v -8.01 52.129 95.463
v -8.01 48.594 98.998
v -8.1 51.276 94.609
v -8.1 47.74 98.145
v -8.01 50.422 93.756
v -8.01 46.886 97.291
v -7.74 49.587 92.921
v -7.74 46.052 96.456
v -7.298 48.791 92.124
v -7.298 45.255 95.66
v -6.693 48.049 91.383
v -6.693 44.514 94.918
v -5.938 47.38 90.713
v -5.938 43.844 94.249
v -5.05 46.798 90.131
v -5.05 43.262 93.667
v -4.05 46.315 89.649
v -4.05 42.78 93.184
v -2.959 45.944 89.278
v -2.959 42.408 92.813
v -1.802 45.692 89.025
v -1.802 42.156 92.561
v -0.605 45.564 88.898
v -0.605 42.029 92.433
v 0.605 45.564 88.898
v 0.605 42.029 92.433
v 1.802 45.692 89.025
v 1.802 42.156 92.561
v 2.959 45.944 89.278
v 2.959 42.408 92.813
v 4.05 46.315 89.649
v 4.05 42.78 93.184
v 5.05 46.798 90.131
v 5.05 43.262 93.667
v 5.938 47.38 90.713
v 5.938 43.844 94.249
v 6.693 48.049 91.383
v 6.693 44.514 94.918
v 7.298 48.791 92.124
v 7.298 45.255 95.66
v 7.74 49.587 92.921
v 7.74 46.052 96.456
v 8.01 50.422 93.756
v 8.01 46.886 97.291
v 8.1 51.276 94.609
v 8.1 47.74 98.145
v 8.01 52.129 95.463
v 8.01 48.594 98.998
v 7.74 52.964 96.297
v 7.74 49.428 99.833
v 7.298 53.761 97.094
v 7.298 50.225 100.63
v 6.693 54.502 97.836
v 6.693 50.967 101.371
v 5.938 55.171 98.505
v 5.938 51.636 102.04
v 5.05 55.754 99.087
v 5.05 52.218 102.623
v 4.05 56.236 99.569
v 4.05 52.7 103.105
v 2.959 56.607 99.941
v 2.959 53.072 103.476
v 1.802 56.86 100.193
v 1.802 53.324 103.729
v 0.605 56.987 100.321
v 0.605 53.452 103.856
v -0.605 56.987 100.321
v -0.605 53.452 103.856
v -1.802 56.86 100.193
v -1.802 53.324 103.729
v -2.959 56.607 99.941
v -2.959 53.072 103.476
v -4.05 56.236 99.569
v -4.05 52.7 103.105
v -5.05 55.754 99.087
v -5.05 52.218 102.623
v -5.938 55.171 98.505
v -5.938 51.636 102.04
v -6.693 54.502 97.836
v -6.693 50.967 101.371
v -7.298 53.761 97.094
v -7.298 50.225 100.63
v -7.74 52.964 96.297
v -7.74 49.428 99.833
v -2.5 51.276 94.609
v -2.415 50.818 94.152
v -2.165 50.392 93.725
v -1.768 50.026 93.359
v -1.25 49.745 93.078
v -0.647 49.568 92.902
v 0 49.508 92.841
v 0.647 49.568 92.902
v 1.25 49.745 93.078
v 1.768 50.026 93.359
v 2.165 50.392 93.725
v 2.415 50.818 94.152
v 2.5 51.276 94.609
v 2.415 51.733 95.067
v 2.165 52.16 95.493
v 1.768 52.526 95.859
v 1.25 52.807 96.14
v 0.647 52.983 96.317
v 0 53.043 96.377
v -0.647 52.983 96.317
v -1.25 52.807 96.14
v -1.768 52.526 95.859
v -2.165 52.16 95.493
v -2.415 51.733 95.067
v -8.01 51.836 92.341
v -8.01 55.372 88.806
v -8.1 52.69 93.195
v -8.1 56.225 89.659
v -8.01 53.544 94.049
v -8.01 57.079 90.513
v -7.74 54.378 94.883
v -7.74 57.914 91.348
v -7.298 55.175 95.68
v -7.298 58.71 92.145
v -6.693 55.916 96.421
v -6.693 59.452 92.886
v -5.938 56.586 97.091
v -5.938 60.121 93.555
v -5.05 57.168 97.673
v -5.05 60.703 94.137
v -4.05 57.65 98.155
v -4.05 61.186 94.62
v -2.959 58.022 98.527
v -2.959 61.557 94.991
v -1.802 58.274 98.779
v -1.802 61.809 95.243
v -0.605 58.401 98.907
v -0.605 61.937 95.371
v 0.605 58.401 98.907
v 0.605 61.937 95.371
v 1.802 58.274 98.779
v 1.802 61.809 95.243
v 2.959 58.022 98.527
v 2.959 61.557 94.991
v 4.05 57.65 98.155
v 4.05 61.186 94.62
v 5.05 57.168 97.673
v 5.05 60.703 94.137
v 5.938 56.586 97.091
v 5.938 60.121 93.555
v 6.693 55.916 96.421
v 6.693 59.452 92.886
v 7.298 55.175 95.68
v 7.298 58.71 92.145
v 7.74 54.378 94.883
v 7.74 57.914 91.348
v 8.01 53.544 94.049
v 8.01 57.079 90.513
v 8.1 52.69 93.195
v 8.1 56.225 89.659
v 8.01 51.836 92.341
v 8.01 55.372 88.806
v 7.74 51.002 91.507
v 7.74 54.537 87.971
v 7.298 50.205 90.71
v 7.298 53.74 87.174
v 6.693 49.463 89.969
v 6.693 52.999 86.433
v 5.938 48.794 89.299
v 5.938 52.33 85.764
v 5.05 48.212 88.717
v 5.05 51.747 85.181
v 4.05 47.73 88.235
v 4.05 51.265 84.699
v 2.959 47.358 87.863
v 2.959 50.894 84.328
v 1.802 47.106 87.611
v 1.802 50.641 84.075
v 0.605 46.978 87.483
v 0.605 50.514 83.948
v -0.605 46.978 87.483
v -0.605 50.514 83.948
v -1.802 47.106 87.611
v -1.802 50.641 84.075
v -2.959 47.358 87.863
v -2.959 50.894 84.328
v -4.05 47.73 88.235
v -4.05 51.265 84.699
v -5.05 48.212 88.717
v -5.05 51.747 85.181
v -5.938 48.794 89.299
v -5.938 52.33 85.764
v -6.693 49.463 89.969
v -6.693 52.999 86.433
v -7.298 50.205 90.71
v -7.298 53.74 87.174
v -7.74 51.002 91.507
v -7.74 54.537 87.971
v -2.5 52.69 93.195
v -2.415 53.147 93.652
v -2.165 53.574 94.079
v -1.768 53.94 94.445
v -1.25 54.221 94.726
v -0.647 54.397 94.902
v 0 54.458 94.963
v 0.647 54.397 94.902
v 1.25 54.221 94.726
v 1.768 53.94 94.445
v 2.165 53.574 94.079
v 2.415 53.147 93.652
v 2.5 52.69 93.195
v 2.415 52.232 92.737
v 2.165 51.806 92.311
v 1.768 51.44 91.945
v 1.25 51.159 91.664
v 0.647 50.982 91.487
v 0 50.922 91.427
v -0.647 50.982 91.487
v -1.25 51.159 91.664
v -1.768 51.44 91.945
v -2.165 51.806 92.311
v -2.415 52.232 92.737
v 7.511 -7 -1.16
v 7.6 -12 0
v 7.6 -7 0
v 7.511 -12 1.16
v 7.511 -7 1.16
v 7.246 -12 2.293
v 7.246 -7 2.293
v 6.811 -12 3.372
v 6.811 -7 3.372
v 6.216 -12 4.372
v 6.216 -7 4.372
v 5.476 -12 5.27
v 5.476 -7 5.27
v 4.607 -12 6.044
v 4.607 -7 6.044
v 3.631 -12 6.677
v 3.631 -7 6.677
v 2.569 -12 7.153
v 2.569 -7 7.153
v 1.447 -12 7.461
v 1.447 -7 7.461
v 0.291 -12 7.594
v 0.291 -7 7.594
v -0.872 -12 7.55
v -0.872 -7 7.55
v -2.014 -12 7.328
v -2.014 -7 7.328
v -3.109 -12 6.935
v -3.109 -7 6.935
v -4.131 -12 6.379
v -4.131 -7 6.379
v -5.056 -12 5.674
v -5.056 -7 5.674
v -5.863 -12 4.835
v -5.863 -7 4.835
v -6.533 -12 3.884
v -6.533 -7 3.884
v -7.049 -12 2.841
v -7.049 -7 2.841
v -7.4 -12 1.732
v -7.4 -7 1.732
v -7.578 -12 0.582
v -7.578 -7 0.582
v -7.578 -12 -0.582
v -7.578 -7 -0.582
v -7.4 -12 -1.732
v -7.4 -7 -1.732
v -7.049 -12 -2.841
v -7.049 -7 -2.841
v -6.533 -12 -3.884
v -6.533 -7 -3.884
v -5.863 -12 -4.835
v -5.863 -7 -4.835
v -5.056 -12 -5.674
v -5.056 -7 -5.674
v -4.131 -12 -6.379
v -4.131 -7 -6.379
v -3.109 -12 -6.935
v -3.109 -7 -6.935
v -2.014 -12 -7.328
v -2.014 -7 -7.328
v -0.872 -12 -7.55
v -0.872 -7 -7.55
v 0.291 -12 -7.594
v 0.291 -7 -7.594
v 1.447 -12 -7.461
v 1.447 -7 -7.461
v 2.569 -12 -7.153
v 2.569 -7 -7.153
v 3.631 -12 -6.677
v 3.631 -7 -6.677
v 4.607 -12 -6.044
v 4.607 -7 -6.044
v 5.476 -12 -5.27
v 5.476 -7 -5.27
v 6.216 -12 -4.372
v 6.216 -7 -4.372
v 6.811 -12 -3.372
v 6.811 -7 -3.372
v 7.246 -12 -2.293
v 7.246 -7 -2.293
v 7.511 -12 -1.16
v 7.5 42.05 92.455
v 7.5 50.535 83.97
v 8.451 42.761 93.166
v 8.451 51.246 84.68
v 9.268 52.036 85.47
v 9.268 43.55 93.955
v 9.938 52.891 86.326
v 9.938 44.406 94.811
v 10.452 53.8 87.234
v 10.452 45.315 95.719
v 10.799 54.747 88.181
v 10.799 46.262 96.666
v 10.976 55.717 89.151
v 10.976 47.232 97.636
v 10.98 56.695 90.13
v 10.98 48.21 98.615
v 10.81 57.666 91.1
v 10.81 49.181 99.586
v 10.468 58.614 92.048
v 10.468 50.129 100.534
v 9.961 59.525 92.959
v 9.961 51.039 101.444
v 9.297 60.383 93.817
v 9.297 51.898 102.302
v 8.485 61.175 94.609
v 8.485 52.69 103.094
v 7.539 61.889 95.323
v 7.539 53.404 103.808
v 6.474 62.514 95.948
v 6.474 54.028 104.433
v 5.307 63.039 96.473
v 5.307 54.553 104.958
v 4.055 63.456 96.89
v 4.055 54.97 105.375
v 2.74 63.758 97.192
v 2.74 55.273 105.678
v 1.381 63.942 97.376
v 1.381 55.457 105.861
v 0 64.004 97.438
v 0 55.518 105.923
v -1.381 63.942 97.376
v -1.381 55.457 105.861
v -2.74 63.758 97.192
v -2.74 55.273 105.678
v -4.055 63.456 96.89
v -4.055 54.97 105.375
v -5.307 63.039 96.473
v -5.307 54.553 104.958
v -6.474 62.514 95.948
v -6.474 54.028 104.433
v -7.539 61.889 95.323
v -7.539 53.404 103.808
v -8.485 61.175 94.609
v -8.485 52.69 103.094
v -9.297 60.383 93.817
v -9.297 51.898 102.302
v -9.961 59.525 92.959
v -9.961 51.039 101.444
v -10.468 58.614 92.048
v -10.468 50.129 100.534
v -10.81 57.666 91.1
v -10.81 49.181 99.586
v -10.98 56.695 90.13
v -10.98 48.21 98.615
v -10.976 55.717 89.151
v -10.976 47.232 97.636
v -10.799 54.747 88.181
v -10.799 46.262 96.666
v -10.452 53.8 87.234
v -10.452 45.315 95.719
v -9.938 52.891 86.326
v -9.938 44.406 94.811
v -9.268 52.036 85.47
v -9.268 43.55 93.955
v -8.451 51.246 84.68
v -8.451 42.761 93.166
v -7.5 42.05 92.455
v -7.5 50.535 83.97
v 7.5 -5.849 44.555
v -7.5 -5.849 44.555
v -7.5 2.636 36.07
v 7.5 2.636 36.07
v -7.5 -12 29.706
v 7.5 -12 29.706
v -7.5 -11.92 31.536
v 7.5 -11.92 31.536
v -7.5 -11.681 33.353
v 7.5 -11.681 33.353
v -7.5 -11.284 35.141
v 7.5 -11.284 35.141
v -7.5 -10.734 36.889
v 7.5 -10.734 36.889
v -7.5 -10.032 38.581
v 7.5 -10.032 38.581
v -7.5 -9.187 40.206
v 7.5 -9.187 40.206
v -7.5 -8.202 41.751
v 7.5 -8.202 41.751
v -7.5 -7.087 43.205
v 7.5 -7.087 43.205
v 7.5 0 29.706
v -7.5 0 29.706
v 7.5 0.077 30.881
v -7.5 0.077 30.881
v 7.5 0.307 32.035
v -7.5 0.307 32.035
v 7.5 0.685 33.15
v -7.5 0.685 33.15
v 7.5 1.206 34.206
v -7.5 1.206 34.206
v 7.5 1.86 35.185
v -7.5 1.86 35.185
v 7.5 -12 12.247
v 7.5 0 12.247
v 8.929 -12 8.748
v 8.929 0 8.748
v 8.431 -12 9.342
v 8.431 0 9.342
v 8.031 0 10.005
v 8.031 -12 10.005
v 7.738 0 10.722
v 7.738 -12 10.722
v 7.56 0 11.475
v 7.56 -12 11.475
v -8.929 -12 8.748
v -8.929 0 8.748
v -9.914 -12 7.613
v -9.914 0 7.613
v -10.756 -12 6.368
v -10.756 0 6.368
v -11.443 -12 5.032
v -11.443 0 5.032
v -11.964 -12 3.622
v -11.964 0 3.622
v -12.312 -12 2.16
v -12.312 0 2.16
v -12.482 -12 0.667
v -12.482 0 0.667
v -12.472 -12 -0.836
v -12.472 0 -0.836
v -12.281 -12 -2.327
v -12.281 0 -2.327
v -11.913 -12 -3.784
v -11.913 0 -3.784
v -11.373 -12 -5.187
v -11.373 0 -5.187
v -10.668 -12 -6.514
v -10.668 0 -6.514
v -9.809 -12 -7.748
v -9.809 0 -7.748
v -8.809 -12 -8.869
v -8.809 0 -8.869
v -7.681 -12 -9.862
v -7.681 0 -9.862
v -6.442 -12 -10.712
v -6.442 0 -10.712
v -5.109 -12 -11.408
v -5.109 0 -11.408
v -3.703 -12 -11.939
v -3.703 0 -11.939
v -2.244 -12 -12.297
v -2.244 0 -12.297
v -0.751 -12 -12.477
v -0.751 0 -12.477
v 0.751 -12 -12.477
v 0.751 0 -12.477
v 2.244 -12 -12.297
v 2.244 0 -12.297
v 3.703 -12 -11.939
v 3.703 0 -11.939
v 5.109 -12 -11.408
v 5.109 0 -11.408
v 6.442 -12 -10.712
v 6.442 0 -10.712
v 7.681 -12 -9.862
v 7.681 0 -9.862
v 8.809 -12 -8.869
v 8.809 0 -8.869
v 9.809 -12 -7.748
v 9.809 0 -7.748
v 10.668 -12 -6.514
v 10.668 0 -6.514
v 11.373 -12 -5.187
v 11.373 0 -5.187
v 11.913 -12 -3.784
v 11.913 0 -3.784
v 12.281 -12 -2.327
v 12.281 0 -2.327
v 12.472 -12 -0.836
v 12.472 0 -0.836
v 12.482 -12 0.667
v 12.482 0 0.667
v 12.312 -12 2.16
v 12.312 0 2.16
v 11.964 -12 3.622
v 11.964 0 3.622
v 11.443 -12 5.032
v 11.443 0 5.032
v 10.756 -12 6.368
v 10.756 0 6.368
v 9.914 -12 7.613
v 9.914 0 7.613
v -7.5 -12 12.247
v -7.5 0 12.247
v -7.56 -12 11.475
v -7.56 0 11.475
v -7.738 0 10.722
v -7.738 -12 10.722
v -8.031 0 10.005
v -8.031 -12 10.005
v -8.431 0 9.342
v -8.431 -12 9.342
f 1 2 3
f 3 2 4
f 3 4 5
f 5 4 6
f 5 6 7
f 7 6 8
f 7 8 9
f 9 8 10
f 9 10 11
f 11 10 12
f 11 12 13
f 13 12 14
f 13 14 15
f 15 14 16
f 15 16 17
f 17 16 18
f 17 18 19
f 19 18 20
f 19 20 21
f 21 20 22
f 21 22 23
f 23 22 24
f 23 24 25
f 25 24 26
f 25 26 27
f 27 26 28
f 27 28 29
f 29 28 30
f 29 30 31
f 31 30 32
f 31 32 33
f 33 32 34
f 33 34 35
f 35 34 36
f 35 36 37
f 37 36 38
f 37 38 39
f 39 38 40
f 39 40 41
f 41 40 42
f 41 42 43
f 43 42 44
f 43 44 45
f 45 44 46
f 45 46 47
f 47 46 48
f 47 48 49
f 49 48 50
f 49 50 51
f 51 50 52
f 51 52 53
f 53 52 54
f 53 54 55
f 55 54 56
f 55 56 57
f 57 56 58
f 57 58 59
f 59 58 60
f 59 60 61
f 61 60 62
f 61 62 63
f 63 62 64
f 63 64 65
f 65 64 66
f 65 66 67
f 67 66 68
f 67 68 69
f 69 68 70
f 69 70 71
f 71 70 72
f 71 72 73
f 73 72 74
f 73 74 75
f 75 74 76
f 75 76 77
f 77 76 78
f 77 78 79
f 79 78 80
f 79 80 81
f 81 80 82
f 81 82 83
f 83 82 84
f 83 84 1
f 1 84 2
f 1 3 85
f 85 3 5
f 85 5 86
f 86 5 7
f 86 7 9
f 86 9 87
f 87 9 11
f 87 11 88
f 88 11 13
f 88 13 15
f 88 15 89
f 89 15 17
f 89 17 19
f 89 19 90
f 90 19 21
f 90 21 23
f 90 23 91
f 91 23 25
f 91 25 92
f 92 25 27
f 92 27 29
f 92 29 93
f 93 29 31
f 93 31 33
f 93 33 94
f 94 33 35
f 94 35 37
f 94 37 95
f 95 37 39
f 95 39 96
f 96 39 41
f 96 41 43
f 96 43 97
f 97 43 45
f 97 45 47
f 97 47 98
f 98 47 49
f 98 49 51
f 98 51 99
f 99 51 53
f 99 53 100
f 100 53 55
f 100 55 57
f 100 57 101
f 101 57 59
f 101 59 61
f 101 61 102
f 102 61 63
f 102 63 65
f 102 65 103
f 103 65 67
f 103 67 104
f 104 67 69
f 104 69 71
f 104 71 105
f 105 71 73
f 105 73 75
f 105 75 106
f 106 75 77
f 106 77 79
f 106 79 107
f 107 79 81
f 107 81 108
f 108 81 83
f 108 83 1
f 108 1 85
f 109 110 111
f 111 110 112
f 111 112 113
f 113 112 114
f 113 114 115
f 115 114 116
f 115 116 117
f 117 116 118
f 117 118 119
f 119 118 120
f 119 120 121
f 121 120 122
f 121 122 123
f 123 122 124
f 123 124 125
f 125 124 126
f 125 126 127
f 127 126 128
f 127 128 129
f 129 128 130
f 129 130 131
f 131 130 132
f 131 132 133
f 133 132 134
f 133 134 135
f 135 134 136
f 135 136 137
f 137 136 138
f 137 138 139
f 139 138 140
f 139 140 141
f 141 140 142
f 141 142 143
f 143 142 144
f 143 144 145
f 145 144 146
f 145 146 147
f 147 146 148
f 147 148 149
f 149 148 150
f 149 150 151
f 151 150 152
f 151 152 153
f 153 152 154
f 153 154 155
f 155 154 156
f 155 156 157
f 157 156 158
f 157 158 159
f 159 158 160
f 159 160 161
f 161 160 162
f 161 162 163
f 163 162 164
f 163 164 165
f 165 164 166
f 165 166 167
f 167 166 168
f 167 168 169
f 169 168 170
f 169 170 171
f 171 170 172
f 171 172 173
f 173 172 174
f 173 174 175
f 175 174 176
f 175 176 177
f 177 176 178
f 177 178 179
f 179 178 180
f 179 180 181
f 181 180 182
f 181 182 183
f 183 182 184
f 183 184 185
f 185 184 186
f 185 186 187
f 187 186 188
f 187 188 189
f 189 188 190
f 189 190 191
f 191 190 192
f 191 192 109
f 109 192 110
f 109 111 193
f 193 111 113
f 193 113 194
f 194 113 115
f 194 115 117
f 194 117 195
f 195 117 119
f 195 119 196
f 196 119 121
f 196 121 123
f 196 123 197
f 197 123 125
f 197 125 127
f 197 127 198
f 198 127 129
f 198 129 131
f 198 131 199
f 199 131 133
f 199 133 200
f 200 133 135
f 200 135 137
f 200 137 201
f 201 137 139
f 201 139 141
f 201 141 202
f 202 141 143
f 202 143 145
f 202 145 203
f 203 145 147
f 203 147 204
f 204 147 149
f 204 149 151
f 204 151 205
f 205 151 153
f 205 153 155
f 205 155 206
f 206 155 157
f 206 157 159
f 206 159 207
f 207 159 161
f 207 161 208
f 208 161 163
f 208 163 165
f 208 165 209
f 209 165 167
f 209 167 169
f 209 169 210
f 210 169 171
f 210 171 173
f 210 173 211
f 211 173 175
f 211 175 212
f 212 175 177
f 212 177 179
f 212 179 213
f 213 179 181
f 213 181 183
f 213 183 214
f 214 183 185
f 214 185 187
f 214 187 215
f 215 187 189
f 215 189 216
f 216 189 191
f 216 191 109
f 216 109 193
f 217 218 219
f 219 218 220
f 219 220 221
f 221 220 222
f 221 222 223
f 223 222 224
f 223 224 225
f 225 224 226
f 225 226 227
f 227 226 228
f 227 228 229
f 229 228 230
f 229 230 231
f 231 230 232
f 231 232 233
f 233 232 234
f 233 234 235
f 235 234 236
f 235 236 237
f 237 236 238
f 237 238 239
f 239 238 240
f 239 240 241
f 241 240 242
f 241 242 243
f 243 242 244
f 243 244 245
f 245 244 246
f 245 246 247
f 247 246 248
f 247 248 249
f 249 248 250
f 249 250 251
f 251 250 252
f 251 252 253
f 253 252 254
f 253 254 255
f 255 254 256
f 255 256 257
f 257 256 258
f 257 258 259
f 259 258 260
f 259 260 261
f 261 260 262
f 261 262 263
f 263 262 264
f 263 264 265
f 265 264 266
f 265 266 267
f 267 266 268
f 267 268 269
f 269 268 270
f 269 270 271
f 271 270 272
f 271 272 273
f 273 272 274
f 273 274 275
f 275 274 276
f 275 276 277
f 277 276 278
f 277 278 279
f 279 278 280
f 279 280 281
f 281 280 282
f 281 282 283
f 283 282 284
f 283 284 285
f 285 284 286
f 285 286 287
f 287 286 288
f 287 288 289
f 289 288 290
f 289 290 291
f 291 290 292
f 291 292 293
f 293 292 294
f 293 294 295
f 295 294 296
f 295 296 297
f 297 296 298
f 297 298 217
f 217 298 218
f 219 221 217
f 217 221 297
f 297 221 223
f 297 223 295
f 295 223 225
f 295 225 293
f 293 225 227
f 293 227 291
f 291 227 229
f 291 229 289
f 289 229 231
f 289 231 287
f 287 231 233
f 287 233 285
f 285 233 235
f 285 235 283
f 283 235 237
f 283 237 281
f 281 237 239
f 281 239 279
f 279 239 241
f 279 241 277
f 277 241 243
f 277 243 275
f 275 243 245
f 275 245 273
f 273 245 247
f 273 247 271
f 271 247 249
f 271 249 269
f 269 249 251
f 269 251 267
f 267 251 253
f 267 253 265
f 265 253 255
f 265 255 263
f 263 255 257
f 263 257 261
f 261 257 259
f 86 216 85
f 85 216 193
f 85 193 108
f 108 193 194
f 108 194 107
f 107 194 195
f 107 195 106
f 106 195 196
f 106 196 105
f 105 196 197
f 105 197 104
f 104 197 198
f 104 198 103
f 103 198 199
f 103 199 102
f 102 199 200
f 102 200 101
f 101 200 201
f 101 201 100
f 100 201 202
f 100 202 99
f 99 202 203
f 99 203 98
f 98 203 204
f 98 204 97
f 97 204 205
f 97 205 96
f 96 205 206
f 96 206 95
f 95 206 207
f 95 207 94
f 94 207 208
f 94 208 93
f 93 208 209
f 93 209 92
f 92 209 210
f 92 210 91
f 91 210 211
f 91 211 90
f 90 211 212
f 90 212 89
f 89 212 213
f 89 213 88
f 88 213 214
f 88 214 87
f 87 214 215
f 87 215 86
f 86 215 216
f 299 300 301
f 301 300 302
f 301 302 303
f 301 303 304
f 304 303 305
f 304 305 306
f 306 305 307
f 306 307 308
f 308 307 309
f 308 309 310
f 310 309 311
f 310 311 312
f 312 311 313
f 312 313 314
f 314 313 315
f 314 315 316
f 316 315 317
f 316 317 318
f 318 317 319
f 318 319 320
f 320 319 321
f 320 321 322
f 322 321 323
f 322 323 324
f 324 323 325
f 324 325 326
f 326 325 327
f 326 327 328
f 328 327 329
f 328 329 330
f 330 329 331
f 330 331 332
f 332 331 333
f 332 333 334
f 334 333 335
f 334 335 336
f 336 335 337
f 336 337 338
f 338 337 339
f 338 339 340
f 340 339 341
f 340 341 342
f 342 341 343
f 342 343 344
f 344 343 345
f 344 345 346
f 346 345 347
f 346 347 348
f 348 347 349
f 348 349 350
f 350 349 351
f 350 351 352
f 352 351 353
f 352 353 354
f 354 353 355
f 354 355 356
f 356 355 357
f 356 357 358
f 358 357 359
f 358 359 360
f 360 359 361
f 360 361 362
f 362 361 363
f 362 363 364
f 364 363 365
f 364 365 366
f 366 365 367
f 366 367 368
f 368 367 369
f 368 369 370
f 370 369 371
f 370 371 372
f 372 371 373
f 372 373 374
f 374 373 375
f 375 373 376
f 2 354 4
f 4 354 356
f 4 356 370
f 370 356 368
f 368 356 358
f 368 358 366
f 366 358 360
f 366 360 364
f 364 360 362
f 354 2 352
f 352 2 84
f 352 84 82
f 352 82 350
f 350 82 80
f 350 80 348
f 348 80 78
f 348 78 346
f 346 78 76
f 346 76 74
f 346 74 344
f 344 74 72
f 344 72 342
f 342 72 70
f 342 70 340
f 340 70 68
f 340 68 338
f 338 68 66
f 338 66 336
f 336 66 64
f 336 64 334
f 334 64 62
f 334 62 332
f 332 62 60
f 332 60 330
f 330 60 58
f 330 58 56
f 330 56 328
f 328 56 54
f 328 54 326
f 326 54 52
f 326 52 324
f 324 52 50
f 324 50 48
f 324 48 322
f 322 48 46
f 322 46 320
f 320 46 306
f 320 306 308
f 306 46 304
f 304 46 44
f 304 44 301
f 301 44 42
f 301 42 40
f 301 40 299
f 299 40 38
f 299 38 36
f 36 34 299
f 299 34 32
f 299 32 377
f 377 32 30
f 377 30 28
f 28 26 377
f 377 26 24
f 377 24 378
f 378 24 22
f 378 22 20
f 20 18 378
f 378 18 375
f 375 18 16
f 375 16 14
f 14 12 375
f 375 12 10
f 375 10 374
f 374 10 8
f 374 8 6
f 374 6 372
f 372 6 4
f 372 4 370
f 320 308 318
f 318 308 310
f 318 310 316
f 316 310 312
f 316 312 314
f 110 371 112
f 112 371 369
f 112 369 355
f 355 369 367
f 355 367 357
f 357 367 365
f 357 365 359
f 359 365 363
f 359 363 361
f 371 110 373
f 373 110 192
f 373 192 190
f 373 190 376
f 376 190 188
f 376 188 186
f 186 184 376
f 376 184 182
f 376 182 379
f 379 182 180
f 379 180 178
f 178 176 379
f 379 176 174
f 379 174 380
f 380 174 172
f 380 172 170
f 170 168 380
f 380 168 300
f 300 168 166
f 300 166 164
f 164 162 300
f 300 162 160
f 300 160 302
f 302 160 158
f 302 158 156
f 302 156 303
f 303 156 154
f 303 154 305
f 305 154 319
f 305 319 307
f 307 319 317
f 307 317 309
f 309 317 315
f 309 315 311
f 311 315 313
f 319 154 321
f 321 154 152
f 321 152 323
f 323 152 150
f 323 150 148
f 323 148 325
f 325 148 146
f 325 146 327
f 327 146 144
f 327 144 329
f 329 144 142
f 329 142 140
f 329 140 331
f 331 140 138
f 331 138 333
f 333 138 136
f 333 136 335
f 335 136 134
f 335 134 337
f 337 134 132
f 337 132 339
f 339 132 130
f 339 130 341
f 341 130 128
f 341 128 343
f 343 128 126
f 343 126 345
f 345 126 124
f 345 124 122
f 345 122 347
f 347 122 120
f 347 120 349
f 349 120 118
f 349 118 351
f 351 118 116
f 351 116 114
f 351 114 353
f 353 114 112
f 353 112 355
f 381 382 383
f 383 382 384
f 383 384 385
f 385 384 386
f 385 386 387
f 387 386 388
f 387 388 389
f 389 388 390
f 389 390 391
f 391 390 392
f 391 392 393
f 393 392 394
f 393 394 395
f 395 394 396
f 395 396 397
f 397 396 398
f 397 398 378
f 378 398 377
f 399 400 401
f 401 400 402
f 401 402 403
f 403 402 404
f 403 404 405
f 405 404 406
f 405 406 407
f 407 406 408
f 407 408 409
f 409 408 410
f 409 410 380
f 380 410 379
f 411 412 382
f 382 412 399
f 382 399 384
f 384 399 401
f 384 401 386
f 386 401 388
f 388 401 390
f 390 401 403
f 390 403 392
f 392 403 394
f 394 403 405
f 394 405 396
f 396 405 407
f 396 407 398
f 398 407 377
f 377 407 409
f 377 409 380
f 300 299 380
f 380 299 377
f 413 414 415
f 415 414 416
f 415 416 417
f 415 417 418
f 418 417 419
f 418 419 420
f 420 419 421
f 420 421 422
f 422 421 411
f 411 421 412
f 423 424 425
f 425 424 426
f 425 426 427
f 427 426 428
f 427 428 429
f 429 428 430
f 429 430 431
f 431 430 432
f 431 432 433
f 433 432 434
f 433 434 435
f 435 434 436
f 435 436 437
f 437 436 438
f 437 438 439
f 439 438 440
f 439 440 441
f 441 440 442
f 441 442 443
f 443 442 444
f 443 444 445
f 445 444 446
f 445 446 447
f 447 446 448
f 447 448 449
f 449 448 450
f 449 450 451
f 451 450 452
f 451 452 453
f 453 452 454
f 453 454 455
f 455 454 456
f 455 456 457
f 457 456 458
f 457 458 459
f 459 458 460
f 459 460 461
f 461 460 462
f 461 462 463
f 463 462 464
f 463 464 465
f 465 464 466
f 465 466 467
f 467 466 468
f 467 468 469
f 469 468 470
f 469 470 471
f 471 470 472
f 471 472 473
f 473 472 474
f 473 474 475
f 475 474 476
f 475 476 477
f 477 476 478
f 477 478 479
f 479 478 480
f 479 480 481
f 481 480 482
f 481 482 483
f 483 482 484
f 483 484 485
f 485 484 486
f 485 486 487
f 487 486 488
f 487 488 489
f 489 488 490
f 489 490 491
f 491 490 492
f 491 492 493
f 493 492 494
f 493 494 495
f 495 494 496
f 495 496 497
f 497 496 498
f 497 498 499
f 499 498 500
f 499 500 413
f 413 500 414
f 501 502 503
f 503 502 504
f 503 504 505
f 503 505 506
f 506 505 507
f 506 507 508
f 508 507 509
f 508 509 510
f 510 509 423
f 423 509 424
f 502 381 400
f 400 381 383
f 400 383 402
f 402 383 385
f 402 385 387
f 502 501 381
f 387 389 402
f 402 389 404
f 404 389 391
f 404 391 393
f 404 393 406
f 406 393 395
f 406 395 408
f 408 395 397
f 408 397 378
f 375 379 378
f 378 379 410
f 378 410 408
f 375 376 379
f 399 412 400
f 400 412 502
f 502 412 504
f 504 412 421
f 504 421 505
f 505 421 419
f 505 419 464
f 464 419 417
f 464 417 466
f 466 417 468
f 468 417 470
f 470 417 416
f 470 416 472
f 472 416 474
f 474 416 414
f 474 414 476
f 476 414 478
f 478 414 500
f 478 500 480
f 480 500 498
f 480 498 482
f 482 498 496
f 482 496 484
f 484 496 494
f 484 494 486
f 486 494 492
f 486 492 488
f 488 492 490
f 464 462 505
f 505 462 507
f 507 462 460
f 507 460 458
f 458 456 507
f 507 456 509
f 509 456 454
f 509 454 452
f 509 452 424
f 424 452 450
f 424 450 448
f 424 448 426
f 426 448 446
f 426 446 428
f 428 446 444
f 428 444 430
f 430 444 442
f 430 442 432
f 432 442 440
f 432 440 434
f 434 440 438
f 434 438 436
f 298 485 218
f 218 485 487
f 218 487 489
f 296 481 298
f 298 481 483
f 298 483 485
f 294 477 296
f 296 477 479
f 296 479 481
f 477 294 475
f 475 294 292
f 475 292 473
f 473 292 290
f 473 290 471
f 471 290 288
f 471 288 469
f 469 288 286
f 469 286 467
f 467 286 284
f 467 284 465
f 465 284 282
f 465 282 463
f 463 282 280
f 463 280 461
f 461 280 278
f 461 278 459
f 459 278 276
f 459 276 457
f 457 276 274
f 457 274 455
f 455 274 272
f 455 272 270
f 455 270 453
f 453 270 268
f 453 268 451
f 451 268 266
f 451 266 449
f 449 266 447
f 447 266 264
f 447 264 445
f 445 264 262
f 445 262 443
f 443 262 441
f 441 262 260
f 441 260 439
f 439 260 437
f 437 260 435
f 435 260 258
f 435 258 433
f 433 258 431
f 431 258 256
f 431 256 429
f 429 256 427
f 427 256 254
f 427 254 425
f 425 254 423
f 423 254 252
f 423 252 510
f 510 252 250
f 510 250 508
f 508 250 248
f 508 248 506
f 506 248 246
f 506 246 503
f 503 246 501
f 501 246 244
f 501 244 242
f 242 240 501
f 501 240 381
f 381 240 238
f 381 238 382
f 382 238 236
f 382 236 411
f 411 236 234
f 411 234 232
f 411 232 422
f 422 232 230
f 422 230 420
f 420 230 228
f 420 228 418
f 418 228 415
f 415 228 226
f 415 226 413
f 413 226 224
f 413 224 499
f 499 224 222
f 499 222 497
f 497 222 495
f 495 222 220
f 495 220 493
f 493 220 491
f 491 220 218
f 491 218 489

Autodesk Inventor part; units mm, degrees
ref_plane "YZ Plane" through (0, 0, 0) normal (1, 0, 0) x (0, 1, 0)
ref_plane "XZ Plane" through (0, 0, 0) normal (0, 1, 0) x (-1, 0, 0)
sketch "Sketch1" plane through (0, 0, 0) normal (0, 1, 0) x (-1, 0, 0)
  arc A0 (-8.928571, 8.748178) -> (8.928571, 8.748178) centre (0, 0) ccw
  line L0 (-7.5, 12.247449) -> (-7.5, 20)
  line L1 (7.5, 20) -> (7.5, 12.247449)
  line L2 (7.5, 20) -> (-7.5, 20)
  arc A1 (7.5, 12.247449) -> (8.928571, 8.748178) centre (12.5, 12.247449) ccw
  arc A2 (-8.928571, 8.748178) -> (-7.5, 12.247449) centre (-12.5, 12.247449) ccw
  point P0 (7.5, 10)
  point P1 (-7.5, 10)
  point P2 (0, 10)
  point P3 (0, 20)
  dimension "d0" = 25
  dimension "d106" = 15
  dimension "d107" = 10
  dimension "d108" = 10
  dimension "d109" = 5
extrude "Extrusion1" add sketch "Sketch1" against normal blind 12
sketch "Sketch22" plane through (-7.5, 0, 20) normal (0, 0, 1) x (1, 0, 0)
  line L0 (0, 0) -> (0, -12) projected
  line L1 (15, -12) -> (0, -12) projected
  line L2 (0, 0) -> (15, 0)
  line L3 (15, 0) -> (15, -12)
  line L4 (15, -12) -> (0, -12)
  line L5 (0, -12) -> (0, 0)
  point P0 (7.5, 0)
sketch "Sketch23" plane through (0, 0, 0) normal (1, 0, 0) x (0, 1, 0)
  line L0 (0, 20) -> (-12, 20)
  line L1 (-6, 20) -> (-6, 29.70611)
  line L2 (-1.606602, 40.312712) -> (43.497475, 85.416788)
  arc A0 (-1.606602, 40.312712) -> (-6, 29.70611) centre (9, 29.70611) ccw
  point P0 (0, 0)
  point P1 (-6, 35.919313)
  dimension "d110" = 15.91931
  dimension "d111" = 70
  dimension "d112" = 135
  dimension "d113" = 15
sweep "Sweep2" add profiles "Sketch22" path "Sketch23" path curves L1 A0 L2
ref_plane "Work Plane11" through (7.5, -1.606602, 40.312712) normal (0, 0.7071068, -0.7071068) x (-1, 0, 0)
sketch "Sketch24" plane through (7.5, -1.606602, 40.312712) normal (0, 0.7071068, -0.7071068) x (-1, 0, 0)
  line L0 (0, 63.786797) -> (15, 63.786797)
  line L1 (0, 63.786797) -> (15, 63.786797)
  line L2 (0, 63.786797) -> (0, 67.740058)
  line L3 (15, 63.786797) -> (15, 67.740058)
  arc A0 (15, 67.740058) -> (0, 67.740058) centre (7.5, 75.786797) ccw
  line L4 (0, 63.786797) -> (15, 63.786797)
  point P0 (7.5, -27.369353)
  point P1 (7.5, 63.786797)
  point P2 (7.5, 63.786797)
  dimension "d129" = 22
  dimension "d130" = 12
extrude "Extrusion17" add sketch "Sketch24" along normal mid plane 12
sketch "Sketch25" plane through (-7.5, -5.849242, 44.555352) normal (0, -0.7071068, 0.7071068) x (1, 0, 0)
  circle A0 centre (7.5, 75.786797) radius 2.5
  arc A1 (15, 67.740058) -> (0, 67.740058) centre (7.5, 75.786797) ccw
  point P0 (7.5, -27.369353)
  dimension "d123" = 5
extrude "Extrusion18" cut sketch "Sketch25" against normal through all
sketch "Sketch26" plane through (0, -12, 0) normal (0, -1, 0) x (1, 0, 0)
  circle A0 centre (0, 0) radius 7.6
  dimension "d126" = 15.2
extrude "Extrusion19" cut sketch "Sketch26" against normal blind 5
sketch "Sketch27" plane through (7.5, 2.636039, 36.070071) normal (0, 0.7071068, -0.7071068) x (-1, 0, 0)
  circle A0 centre (7.5, 75.786797) radius 2.5
  circle A1 centre (7.5, 75.786797) radius 8.1
  point P0 (7.5, -27.369353)
  dimension "d131" = 16.2
extrude "Extrusion20" cut sketch "Sketch27" against normal blind 5
mirror "Mirror2" about plane through (7.5, -1.606602, 40.312712) normal (0, 0.7071068, -0.7071068) of "Extrusion20"
properties part number "proximal_link_3"
